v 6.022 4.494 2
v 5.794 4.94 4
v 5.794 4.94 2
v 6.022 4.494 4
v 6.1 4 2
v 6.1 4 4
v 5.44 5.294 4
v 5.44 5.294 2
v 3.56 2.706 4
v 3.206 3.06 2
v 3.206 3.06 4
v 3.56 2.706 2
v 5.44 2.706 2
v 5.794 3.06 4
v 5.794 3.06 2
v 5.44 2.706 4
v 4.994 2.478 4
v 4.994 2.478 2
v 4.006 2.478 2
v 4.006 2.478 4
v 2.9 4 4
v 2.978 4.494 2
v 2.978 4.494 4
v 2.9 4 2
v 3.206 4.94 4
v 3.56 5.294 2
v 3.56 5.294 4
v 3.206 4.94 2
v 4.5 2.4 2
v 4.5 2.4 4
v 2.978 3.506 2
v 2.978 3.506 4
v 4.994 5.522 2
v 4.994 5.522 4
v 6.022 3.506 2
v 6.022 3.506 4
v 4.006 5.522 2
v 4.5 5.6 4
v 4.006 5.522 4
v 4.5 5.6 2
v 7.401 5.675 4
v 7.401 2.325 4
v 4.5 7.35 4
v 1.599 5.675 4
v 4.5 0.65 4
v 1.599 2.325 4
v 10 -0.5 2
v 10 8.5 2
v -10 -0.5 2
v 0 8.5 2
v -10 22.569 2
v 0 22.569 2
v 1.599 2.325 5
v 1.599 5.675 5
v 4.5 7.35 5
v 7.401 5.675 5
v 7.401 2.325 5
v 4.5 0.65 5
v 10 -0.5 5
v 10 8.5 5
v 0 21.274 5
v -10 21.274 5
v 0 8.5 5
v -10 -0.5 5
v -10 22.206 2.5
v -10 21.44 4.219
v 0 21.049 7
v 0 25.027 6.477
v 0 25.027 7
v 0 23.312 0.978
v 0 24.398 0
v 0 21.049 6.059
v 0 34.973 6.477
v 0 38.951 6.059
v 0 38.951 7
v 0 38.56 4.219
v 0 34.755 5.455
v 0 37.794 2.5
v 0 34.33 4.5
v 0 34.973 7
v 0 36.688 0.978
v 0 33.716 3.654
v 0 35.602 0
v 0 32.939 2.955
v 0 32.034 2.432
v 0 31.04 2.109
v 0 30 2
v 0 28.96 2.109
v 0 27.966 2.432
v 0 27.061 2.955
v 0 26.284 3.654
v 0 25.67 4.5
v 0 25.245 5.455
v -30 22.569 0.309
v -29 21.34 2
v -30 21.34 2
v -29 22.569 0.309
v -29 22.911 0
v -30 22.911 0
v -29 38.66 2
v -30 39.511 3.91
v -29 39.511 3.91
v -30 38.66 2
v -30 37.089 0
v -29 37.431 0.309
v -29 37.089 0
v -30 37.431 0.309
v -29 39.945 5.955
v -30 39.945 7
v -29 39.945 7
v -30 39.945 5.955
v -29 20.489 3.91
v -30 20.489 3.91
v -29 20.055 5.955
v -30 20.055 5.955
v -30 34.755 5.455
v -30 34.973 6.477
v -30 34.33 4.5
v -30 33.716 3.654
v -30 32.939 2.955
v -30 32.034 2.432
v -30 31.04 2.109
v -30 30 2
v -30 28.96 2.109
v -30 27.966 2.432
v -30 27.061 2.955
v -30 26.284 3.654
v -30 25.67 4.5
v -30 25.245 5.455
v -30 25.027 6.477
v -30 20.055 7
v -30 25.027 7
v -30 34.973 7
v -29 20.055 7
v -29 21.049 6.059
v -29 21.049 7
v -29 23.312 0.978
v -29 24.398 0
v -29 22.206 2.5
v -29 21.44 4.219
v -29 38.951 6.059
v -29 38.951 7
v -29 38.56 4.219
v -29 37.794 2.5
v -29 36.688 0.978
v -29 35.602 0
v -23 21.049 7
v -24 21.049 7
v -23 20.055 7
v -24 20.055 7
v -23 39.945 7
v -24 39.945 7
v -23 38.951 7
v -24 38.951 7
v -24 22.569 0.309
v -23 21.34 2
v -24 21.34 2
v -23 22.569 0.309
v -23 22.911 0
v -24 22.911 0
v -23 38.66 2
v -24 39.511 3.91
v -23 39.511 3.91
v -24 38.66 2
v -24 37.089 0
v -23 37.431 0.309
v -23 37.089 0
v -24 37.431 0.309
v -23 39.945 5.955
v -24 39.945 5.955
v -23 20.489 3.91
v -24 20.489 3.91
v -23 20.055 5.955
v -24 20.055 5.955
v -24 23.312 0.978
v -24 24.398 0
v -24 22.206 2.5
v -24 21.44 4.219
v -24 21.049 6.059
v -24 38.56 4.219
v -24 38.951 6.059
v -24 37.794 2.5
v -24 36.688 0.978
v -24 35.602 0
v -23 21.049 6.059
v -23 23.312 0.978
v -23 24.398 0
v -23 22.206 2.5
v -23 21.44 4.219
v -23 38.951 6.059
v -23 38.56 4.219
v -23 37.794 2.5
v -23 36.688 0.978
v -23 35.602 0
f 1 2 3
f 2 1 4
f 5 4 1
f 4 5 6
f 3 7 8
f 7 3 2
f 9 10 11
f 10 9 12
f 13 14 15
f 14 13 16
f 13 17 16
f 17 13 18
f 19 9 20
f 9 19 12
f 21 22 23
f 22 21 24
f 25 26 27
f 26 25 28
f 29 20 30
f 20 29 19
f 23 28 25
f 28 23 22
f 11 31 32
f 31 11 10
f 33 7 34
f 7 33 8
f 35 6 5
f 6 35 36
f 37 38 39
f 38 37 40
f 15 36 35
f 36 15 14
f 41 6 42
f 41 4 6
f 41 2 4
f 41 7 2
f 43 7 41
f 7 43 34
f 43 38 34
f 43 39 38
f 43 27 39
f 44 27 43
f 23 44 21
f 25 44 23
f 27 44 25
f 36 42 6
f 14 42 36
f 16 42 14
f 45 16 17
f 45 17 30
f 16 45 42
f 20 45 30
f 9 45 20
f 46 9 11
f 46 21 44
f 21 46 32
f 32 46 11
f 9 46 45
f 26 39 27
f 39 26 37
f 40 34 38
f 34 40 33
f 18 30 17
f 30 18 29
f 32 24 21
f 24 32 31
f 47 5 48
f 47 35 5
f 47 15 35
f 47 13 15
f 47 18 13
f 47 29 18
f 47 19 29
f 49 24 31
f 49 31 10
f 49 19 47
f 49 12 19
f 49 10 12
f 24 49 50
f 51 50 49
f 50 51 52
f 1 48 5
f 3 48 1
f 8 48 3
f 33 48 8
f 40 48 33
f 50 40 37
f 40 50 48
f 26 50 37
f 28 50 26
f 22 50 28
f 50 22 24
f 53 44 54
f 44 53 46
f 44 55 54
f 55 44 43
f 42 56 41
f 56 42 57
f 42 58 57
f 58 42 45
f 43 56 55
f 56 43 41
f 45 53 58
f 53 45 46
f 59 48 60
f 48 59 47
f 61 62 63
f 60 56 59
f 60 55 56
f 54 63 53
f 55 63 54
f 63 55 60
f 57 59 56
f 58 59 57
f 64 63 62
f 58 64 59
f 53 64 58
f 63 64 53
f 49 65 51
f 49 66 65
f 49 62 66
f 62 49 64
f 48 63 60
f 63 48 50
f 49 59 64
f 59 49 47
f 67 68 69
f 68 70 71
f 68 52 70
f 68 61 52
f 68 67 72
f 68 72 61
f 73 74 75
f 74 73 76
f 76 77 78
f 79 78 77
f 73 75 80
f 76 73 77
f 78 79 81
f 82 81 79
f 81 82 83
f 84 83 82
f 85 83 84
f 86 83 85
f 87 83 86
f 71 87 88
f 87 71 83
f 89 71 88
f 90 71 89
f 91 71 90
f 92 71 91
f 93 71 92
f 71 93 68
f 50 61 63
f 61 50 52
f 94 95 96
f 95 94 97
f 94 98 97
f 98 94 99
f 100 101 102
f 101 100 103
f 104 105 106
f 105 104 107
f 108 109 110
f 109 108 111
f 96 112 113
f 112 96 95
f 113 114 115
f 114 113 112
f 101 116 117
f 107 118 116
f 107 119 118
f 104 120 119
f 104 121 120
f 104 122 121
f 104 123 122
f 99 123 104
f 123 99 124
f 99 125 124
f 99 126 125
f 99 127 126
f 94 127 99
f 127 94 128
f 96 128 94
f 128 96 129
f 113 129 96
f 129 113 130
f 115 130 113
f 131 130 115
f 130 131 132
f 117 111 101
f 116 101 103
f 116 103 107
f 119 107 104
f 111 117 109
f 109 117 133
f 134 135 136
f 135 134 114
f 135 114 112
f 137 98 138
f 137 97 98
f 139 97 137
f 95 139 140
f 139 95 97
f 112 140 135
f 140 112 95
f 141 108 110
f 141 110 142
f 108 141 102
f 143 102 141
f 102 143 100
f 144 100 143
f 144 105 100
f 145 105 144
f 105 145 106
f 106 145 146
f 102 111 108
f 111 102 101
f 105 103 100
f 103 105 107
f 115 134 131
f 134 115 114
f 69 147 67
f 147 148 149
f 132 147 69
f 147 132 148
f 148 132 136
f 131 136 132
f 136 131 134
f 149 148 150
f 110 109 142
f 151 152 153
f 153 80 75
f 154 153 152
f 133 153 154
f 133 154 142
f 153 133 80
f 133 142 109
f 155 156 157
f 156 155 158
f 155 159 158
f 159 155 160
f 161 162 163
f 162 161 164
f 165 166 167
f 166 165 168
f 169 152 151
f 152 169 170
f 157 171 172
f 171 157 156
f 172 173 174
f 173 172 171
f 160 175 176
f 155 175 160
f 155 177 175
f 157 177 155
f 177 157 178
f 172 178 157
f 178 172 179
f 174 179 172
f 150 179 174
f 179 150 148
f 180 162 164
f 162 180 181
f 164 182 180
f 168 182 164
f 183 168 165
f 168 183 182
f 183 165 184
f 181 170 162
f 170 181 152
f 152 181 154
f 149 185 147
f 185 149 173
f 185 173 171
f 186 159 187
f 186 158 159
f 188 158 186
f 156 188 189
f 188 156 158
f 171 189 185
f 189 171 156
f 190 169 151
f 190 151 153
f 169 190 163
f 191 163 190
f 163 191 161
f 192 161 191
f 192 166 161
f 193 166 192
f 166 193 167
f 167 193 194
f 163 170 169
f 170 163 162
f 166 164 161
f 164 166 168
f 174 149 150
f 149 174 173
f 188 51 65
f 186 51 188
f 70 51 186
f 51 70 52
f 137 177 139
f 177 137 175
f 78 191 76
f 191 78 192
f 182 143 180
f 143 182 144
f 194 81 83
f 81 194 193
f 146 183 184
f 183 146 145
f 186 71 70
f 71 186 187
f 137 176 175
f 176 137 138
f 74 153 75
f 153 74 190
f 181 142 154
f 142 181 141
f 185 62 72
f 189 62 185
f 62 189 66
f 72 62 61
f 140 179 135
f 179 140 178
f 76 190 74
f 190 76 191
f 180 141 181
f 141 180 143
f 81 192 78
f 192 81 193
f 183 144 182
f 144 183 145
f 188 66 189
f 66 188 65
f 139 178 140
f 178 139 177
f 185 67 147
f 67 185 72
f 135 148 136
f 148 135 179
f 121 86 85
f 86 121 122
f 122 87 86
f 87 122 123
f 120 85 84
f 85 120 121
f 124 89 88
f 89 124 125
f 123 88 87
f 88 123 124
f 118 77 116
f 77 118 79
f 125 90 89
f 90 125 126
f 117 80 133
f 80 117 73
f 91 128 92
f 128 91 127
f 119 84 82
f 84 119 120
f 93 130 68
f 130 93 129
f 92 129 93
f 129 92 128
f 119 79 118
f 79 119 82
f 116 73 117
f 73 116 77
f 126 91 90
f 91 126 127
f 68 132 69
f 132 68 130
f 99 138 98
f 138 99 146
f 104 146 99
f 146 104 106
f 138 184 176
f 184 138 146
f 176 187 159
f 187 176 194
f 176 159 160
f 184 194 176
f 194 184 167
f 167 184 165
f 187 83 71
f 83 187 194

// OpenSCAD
/* Copyright 2021 Alex Volkov <alex@flamy.ca>
 * License: Attribution-ShareAlike 4.0 International (CC BY-SA)
 * https://creativecommons.org/licenses/by-sa/4.0/
 */

include <../libs/hardware-recess.scad>;
$fn=30;

module cable_mount(cable_len, out_d, in_d){
    rotate([0, 90, 0 ]){
    difference(){
        cylinder(d=out_d, h=cable_len);
        cylinder(d=in_d, h=cable_len);
        translate([-out_d/2, 0, cable_len/2])
            cube([out_d, out_d, cable_len], center=true);
        }
    }
}

BASE_L = 30;

CABLE_MOUNT_X_OFFSET=30;
CABLE_MOUNT_Z_OFFSET=7;

CABLE_MOUNT_L=30;
CABLE_MOUNT_INNER_D=10;
CABLE_MOUNT_OUTER_D=18;

//cube([9, 9, 2]);

difference() {
    union(){
        translate([-10, -0.5, 2])
            cube([20, 9, 3]);
        translate([-10, 7, 2])
            cube([10, 18, 3]);
    }
    translate([4.5, 4, 2])
        hole_w_end(5, 3, "hex", 3.3, flip=false);
    translate([0, CABLE_MOUNT_X_OFFSET, CABLE_MOUNT_Z_OFFSET-1])
        rotate([0,90, 0])
            cylinder(h=20, d=9);
}

translate([-CABLE_MOUNT_L, CABLE_MOUNT_X_OFFSET, CABLE_MOUNT_Z_OFFSET]){
    difference(){
        union(){
            cable_mount(CABLE_MOUNT_L, CABLE_MOUNT_OUTER_D, CABLE_MOUNT_INNER_D);
            cable_mount(1, CABLE_MOUNT_OUTER_D+2, CABLE_MOUNT_INNER_D+2);
            translate([6, 0, 0])
                cable_mount(1, CABLE_MOUNT_OUTER_D+2, CABLE_MOUNT_INNER_D+2);
            
            *translate([20, 0, 0])
                cable_mount(1, CABLE_MOUNT_OUTER_D+2, CABLE_MOUNT_INNER_D+2);
            *translate([26, 0, 0])
                cable_mount(1, CABLE_MOUNT_OUTER_D+2, CABLE_MOUNT_INNER_D+2);
        }
        translate([0, -10, -CABLE_MOUNT_Z_OFFSET - 3])
            cube([CABLE_MOUNT_L, CABLE_MOUNT_OUTER_D+5, 3]);
    }
}
